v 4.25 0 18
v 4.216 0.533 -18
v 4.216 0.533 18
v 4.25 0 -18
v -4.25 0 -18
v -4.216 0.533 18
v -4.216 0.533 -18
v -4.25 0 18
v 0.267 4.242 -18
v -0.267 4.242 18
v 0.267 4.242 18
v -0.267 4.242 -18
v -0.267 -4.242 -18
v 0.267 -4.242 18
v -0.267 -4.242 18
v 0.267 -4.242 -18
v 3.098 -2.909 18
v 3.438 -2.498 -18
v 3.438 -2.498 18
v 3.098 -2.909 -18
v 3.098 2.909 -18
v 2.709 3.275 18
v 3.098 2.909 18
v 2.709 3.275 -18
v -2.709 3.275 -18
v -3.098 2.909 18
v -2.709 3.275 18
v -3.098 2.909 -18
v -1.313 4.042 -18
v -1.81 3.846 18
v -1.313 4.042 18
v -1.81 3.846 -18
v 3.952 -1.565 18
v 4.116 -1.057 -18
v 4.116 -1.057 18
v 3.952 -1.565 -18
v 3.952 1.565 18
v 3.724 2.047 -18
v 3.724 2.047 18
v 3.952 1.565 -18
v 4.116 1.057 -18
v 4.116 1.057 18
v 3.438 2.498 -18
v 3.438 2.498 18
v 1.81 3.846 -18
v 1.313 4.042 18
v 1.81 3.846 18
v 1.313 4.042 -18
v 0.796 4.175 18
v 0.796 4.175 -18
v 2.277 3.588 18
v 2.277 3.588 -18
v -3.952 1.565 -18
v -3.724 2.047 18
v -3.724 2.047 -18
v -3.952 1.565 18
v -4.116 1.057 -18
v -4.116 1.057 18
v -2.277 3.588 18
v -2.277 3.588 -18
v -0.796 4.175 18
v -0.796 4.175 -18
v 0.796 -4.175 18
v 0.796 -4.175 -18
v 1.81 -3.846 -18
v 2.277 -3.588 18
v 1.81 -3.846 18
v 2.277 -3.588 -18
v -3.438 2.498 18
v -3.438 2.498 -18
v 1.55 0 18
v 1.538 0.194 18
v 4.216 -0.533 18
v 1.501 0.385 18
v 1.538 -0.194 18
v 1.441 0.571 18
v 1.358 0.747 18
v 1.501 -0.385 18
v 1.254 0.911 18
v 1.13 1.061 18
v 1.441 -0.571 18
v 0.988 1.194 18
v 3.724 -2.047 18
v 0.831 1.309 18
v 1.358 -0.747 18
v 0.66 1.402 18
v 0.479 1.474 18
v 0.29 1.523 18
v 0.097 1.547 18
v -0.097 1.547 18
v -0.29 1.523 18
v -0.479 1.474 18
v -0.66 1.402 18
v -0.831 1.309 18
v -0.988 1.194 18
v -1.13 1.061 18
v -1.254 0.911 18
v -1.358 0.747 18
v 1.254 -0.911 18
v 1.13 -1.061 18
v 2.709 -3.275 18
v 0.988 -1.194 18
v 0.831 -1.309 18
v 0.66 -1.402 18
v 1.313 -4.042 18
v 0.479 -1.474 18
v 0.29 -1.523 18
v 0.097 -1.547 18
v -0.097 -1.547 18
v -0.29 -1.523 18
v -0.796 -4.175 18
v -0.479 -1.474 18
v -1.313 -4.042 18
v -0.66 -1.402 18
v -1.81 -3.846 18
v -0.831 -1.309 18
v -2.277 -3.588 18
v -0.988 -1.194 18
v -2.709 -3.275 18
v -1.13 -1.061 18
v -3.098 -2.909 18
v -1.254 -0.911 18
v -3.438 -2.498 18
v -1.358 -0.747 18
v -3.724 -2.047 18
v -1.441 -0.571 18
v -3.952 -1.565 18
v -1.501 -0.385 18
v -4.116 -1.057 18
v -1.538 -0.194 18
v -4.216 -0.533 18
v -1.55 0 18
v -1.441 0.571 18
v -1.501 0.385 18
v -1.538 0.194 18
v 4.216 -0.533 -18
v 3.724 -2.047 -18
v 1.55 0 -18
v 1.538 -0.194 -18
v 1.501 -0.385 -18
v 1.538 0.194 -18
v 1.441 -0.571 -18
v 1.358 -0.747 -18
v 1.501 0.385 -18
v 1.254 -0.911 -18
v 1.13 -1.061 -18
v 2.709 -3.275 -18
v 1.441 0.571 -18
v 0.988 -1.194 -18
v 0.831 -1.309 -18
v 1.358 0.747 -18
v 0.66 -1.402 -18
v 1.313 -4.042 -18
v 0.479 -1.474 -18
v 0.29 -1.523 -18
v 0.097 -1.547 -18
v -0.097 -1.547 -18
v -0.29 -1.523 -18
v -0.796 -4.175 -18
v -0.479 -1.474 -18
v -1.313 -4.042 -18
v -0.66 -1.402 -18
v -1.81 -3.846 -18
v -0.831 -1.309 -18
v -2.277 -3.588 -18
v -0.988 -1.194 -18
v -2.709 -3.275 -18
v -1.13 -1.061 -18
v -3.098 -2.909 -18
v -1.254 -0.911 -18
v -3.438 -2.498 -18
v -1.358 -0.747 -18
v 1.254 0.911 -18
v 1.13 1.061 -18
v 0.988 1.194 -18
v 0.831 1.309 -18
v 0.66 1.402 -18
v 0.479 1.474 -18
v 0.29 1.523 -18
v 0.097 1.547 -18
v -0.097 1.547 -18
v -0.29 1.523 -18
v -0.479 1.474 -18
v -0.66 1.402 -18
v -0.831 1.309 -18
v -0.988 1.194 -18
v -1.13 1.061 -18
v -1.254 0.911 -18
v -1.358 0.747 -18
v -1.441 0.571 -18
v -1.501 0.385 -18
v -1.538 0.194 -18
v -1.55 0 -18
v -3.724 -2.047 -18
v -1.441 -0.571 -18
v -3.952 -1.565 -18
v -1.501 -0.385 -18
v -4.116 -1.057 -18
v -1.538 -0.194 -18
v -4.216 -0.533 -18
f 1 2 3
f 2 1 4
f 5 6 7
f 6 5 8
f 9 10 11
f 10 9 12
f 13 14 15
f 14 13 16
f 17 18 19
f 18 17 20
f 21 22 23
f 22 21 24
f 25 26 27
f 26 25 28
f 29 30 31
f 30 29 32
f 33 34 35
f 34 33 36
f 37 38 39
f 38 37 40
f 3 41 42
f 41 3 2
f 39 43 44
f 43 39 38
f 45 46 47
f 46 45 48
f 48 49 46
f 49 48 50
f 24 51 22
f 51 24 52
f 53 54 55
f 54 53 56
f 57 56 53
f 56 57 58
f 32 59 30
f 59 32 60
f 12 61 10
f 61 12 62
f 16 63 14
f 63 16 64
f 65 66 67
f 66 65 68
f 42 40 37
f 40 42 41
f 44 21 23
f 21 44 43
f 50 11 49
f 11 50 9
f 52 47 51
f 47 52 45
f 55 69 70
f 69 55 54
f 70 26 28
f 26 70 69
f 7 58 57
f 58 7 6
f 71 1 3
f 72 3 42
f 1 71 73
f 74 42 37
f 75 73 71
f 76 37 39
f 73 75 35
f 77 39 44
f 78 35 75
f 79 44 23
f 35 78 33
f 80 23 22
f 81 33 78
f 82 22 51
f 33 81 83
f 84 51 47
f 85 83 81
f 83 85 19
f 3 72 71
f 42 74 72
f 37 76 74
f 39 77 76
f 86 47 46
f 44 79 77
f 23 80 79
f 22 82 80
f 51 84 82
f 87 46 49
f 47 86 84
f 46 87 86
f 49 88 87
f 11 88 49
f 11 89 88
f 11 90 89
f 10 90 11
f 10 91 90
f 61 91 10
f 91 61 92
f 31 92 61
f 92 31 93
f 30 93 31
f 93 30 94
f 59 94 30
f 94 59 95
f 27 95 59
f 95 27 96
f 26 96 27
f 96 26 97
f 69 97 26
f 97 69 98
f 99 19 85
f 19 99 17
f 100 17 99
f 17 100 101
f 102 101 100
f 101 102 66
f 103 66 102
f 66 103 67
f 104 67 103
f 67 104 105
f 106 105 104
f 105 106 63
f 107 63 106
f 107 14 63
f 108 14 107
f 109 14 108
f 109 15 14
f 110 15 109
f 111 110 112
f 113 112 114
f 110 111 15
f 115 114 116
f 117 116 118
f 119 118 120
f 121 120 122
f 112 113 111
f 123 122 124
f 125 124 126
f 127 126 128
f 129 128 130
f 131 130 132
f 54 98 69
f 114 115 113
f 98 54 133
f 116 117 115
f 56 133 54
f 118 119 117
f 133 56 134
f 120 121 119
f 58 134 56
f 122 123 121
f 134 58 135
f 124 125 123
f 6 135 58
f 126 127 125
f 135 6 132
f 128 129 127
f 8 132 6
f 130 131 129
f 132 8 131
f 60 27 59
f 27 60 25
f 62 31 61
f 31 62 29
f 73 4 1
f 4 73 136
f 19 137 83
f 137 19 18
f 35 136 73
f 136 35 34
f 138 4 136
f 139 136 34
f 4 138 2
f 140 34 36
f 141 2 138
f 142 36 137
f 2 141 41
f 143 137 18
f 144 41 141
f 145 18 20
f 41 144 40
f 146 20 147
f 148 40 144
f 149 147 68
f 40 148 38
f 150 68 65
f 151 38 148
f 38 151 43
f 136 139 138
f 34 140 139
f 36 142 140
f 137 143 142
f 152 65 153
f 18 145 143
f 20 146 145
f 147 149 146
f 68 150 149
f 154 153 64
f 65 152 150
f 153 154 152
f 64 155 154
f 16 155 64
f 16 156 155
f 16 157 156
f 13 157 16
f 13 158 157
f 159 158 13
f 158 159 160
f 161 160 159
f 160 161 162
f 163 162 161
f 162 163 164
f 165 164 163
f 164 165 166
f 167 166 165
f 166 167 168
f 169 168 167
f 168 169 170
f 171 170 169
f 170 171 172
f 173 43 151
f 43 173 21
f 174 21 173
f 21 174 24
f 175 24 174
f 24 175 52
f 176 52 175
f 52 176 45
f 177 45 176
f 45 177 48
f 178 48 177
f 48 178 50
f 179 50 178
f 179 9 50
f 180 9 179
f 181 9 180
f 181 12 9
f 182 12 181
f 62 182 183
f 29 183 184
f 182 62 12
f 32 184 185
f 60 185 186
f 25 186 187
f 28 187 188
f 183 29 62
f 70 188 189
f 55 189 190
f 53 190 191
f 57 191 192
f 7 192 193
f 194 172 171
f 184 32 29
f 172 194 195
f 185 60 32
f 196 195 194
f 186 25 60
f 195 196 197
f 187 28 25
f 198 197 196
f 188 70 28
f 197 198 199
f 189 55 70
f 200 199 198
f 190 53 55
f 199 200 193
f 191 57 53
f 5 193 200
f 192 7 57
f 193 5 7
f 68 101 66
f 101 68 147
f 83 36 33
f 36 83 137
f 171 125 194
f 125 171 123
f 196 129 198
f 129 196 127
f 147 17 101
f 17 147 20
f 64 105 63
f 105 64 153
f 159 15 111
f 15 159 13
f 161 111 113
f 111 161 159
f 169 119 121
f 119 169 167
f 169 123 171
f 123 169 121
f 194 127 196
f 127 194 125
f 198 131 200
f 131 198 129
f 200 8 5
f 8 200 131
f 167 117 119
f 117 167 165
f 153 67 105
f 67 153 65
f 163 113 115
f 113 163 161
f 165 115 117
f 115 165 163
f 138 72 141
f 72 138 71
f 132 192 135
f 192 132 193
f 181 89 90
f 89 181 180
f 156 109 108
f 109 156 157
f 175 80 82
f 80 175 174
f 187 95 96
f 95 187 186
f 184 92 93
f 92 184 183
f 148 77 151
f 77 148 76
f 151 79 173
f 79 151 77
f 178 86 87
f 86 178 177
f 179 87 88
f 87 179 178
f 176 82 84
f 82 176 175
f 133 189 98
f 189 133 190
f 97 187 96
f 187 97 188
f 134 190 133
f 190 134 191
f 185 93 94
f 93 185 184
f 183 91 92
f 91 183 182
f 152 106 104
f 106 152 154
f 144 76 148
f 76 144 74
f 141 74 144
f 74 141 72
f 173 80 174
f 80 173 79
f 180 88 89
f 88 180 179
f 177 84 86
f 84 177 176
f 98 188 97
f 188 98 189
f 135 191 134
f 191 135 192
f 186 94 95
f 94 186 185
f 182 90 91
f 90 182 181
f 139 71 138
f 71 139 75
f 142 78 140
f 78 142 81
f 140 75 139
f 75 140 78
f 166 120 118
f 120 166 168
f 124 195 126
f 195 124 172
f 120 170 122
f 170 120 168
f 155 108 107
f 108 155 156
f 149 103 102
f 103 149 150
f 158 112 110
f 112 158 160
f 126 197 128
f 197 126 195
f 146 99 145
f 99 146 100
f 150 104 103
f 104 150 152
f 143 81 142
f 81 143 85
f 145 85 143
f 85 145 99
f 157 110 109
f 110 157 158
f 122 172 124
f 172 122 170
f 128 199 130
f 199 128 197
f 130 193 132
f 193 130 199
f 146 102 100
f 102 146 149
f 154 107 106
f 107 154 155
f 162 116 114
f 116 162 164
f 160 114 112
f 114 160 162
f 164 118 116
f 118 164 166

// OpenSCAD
$fn = 50;


difference() {
	union() {
		translate(v = [0, 0, -18.0000000000]) {
			cylinder(h = 36, r = 4.2500000000);
		}
	}
	union() {
		translate(v = [0, 0, -100.0000000000]) {
			cylinder(h = 200, r = 1.5500000000);
		}
	}
}
